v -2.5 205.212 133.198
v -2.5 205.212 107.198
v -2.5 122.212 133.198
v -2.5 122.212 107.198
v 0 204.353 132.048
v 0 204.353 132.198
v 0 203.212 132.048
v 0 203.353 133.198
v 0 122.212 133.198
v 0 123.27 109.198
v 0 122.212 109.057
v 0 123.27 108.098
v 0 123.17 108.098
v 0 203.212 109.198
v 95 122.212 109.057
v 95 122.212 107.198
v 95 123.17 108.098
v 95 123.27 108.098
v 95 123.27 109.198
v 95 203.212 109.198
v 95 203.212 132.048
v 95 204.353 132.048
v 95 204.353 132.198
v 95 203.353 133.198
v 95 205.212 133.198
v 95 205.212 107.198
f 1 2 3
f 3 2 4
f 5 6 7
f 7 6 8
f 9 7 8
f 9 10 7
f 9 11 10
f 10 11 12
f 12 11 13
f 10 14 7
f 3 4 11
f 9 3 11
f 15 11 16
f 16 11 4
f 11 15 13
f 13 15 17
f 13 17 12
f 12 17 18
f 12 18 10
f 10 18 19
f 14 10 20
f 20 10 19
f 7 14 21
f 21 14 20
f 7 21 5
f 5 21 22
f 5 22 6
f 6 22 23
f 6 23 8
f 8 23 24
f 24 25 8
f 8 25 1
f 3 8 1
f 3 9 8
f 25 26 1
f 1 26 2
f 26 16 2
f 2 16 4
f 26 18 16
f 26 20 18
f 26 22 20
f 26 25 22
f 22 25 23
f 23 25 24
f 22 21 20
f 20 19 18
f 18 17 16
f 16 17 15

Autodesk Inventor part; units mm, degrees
ref_plane "YZ Plane" through (0, 0, 0) normal (1, 0, 0) x (0, 1, 0)
ref_plane "XZ Plane" through (0, 0, 0) normal (0, 1, 0) x (-1, 0, 0)
ref_plane "XY Plane" through (0, 0, 0) normal (0, 0, 1) x (1, 0, 0)
sketch "Skizze1" plane through (0, 0, 0) normal (1, 0, 0) x (0, 1, 0)
  line L0 (123.2117, 108.1983) -> (122.2117, 109.1983) construction
  line L1 (122.2117, 133.1983) -> (122.2117, 107.1983) construction
  line L2 (122.2117, 107.1983) -> (205.2117, 107.1983) construction
  line L3 (205.2117, 107.1983) -> (205.2117, 133.1983) construction
  line L4 (203.2117, 133.1983) -> (204.2117, 132.1983) construction
  line L5 (122.2117, 107.1983) -> (205.2117, 107.1983)
  line L6 (205.2117, 107.1983) -> (205.2117, 133.1983)
  line L7 (203.2117, 109.1983) -> (123.2703, 109.1983)
  line L8 (123.1703, 108.0983) -> (122.2117, 109.0569)
  line L9 (122.2117, 109.0569) -> (122.2117, 107.1983)
  line L10 (123.2703, 108.0983) -> (123.2703, 109.1983)
  line L11 (123.1703, 108.0983) -> (123.2703, 108.0983)
  line L12 (203.3531, 133.1983) -> (204.3531, 132.1983)
  line L13 (205.2117, 133.1983) -> (203.3531, 133.1983)
  line L14 (204.3531, 132.1983) -> (204.3531, 132.0483)
  line L15 (204.3531, 132.0483) -> (203.2117, 132.0483)
  line L16 (203.2117, 132.0483) -> (203.2117, 109.1983)
  point P0 (0, 0)
  dimension "d2" = 0.1
  dimension "d4" = 2
  dimension "d6" = 1.1
  dimension "d8" = 0.1
  dimension "d9" = 0.1
  dimension "d10" = 0.15
  dimension "d11" = 2
extrude "Extrusion1" add sketch "Skizze1" along normal blind 95
sketch "Skizze2" plane through (0, 0, 0) normal (-1, 0, 0) x (0, 0, 1)
  line L0 (107.1983, 205.2117) -> (133.1983, 205.2117) projected
  line L1 (109.0569, 122.2117) -> (107.1983, 122.2117) projected
  line L2 (133.1983, 205.2117) -> (107.1983, 205.2117)
  line L3 (107.1983, 205.2117) -> (107.1983, 122.2117)
  line L4 (107.1983, 122.2117) -> (133.1983, 122.2117)
  line L5 (133.1983, 122.2117) -> (133.1983, 205.2117)
  point P0 (0, 0)
extrude "Extrusion2" add sketch "Skizze2" along normal blind 2.5
properties part number "Batcap2"
